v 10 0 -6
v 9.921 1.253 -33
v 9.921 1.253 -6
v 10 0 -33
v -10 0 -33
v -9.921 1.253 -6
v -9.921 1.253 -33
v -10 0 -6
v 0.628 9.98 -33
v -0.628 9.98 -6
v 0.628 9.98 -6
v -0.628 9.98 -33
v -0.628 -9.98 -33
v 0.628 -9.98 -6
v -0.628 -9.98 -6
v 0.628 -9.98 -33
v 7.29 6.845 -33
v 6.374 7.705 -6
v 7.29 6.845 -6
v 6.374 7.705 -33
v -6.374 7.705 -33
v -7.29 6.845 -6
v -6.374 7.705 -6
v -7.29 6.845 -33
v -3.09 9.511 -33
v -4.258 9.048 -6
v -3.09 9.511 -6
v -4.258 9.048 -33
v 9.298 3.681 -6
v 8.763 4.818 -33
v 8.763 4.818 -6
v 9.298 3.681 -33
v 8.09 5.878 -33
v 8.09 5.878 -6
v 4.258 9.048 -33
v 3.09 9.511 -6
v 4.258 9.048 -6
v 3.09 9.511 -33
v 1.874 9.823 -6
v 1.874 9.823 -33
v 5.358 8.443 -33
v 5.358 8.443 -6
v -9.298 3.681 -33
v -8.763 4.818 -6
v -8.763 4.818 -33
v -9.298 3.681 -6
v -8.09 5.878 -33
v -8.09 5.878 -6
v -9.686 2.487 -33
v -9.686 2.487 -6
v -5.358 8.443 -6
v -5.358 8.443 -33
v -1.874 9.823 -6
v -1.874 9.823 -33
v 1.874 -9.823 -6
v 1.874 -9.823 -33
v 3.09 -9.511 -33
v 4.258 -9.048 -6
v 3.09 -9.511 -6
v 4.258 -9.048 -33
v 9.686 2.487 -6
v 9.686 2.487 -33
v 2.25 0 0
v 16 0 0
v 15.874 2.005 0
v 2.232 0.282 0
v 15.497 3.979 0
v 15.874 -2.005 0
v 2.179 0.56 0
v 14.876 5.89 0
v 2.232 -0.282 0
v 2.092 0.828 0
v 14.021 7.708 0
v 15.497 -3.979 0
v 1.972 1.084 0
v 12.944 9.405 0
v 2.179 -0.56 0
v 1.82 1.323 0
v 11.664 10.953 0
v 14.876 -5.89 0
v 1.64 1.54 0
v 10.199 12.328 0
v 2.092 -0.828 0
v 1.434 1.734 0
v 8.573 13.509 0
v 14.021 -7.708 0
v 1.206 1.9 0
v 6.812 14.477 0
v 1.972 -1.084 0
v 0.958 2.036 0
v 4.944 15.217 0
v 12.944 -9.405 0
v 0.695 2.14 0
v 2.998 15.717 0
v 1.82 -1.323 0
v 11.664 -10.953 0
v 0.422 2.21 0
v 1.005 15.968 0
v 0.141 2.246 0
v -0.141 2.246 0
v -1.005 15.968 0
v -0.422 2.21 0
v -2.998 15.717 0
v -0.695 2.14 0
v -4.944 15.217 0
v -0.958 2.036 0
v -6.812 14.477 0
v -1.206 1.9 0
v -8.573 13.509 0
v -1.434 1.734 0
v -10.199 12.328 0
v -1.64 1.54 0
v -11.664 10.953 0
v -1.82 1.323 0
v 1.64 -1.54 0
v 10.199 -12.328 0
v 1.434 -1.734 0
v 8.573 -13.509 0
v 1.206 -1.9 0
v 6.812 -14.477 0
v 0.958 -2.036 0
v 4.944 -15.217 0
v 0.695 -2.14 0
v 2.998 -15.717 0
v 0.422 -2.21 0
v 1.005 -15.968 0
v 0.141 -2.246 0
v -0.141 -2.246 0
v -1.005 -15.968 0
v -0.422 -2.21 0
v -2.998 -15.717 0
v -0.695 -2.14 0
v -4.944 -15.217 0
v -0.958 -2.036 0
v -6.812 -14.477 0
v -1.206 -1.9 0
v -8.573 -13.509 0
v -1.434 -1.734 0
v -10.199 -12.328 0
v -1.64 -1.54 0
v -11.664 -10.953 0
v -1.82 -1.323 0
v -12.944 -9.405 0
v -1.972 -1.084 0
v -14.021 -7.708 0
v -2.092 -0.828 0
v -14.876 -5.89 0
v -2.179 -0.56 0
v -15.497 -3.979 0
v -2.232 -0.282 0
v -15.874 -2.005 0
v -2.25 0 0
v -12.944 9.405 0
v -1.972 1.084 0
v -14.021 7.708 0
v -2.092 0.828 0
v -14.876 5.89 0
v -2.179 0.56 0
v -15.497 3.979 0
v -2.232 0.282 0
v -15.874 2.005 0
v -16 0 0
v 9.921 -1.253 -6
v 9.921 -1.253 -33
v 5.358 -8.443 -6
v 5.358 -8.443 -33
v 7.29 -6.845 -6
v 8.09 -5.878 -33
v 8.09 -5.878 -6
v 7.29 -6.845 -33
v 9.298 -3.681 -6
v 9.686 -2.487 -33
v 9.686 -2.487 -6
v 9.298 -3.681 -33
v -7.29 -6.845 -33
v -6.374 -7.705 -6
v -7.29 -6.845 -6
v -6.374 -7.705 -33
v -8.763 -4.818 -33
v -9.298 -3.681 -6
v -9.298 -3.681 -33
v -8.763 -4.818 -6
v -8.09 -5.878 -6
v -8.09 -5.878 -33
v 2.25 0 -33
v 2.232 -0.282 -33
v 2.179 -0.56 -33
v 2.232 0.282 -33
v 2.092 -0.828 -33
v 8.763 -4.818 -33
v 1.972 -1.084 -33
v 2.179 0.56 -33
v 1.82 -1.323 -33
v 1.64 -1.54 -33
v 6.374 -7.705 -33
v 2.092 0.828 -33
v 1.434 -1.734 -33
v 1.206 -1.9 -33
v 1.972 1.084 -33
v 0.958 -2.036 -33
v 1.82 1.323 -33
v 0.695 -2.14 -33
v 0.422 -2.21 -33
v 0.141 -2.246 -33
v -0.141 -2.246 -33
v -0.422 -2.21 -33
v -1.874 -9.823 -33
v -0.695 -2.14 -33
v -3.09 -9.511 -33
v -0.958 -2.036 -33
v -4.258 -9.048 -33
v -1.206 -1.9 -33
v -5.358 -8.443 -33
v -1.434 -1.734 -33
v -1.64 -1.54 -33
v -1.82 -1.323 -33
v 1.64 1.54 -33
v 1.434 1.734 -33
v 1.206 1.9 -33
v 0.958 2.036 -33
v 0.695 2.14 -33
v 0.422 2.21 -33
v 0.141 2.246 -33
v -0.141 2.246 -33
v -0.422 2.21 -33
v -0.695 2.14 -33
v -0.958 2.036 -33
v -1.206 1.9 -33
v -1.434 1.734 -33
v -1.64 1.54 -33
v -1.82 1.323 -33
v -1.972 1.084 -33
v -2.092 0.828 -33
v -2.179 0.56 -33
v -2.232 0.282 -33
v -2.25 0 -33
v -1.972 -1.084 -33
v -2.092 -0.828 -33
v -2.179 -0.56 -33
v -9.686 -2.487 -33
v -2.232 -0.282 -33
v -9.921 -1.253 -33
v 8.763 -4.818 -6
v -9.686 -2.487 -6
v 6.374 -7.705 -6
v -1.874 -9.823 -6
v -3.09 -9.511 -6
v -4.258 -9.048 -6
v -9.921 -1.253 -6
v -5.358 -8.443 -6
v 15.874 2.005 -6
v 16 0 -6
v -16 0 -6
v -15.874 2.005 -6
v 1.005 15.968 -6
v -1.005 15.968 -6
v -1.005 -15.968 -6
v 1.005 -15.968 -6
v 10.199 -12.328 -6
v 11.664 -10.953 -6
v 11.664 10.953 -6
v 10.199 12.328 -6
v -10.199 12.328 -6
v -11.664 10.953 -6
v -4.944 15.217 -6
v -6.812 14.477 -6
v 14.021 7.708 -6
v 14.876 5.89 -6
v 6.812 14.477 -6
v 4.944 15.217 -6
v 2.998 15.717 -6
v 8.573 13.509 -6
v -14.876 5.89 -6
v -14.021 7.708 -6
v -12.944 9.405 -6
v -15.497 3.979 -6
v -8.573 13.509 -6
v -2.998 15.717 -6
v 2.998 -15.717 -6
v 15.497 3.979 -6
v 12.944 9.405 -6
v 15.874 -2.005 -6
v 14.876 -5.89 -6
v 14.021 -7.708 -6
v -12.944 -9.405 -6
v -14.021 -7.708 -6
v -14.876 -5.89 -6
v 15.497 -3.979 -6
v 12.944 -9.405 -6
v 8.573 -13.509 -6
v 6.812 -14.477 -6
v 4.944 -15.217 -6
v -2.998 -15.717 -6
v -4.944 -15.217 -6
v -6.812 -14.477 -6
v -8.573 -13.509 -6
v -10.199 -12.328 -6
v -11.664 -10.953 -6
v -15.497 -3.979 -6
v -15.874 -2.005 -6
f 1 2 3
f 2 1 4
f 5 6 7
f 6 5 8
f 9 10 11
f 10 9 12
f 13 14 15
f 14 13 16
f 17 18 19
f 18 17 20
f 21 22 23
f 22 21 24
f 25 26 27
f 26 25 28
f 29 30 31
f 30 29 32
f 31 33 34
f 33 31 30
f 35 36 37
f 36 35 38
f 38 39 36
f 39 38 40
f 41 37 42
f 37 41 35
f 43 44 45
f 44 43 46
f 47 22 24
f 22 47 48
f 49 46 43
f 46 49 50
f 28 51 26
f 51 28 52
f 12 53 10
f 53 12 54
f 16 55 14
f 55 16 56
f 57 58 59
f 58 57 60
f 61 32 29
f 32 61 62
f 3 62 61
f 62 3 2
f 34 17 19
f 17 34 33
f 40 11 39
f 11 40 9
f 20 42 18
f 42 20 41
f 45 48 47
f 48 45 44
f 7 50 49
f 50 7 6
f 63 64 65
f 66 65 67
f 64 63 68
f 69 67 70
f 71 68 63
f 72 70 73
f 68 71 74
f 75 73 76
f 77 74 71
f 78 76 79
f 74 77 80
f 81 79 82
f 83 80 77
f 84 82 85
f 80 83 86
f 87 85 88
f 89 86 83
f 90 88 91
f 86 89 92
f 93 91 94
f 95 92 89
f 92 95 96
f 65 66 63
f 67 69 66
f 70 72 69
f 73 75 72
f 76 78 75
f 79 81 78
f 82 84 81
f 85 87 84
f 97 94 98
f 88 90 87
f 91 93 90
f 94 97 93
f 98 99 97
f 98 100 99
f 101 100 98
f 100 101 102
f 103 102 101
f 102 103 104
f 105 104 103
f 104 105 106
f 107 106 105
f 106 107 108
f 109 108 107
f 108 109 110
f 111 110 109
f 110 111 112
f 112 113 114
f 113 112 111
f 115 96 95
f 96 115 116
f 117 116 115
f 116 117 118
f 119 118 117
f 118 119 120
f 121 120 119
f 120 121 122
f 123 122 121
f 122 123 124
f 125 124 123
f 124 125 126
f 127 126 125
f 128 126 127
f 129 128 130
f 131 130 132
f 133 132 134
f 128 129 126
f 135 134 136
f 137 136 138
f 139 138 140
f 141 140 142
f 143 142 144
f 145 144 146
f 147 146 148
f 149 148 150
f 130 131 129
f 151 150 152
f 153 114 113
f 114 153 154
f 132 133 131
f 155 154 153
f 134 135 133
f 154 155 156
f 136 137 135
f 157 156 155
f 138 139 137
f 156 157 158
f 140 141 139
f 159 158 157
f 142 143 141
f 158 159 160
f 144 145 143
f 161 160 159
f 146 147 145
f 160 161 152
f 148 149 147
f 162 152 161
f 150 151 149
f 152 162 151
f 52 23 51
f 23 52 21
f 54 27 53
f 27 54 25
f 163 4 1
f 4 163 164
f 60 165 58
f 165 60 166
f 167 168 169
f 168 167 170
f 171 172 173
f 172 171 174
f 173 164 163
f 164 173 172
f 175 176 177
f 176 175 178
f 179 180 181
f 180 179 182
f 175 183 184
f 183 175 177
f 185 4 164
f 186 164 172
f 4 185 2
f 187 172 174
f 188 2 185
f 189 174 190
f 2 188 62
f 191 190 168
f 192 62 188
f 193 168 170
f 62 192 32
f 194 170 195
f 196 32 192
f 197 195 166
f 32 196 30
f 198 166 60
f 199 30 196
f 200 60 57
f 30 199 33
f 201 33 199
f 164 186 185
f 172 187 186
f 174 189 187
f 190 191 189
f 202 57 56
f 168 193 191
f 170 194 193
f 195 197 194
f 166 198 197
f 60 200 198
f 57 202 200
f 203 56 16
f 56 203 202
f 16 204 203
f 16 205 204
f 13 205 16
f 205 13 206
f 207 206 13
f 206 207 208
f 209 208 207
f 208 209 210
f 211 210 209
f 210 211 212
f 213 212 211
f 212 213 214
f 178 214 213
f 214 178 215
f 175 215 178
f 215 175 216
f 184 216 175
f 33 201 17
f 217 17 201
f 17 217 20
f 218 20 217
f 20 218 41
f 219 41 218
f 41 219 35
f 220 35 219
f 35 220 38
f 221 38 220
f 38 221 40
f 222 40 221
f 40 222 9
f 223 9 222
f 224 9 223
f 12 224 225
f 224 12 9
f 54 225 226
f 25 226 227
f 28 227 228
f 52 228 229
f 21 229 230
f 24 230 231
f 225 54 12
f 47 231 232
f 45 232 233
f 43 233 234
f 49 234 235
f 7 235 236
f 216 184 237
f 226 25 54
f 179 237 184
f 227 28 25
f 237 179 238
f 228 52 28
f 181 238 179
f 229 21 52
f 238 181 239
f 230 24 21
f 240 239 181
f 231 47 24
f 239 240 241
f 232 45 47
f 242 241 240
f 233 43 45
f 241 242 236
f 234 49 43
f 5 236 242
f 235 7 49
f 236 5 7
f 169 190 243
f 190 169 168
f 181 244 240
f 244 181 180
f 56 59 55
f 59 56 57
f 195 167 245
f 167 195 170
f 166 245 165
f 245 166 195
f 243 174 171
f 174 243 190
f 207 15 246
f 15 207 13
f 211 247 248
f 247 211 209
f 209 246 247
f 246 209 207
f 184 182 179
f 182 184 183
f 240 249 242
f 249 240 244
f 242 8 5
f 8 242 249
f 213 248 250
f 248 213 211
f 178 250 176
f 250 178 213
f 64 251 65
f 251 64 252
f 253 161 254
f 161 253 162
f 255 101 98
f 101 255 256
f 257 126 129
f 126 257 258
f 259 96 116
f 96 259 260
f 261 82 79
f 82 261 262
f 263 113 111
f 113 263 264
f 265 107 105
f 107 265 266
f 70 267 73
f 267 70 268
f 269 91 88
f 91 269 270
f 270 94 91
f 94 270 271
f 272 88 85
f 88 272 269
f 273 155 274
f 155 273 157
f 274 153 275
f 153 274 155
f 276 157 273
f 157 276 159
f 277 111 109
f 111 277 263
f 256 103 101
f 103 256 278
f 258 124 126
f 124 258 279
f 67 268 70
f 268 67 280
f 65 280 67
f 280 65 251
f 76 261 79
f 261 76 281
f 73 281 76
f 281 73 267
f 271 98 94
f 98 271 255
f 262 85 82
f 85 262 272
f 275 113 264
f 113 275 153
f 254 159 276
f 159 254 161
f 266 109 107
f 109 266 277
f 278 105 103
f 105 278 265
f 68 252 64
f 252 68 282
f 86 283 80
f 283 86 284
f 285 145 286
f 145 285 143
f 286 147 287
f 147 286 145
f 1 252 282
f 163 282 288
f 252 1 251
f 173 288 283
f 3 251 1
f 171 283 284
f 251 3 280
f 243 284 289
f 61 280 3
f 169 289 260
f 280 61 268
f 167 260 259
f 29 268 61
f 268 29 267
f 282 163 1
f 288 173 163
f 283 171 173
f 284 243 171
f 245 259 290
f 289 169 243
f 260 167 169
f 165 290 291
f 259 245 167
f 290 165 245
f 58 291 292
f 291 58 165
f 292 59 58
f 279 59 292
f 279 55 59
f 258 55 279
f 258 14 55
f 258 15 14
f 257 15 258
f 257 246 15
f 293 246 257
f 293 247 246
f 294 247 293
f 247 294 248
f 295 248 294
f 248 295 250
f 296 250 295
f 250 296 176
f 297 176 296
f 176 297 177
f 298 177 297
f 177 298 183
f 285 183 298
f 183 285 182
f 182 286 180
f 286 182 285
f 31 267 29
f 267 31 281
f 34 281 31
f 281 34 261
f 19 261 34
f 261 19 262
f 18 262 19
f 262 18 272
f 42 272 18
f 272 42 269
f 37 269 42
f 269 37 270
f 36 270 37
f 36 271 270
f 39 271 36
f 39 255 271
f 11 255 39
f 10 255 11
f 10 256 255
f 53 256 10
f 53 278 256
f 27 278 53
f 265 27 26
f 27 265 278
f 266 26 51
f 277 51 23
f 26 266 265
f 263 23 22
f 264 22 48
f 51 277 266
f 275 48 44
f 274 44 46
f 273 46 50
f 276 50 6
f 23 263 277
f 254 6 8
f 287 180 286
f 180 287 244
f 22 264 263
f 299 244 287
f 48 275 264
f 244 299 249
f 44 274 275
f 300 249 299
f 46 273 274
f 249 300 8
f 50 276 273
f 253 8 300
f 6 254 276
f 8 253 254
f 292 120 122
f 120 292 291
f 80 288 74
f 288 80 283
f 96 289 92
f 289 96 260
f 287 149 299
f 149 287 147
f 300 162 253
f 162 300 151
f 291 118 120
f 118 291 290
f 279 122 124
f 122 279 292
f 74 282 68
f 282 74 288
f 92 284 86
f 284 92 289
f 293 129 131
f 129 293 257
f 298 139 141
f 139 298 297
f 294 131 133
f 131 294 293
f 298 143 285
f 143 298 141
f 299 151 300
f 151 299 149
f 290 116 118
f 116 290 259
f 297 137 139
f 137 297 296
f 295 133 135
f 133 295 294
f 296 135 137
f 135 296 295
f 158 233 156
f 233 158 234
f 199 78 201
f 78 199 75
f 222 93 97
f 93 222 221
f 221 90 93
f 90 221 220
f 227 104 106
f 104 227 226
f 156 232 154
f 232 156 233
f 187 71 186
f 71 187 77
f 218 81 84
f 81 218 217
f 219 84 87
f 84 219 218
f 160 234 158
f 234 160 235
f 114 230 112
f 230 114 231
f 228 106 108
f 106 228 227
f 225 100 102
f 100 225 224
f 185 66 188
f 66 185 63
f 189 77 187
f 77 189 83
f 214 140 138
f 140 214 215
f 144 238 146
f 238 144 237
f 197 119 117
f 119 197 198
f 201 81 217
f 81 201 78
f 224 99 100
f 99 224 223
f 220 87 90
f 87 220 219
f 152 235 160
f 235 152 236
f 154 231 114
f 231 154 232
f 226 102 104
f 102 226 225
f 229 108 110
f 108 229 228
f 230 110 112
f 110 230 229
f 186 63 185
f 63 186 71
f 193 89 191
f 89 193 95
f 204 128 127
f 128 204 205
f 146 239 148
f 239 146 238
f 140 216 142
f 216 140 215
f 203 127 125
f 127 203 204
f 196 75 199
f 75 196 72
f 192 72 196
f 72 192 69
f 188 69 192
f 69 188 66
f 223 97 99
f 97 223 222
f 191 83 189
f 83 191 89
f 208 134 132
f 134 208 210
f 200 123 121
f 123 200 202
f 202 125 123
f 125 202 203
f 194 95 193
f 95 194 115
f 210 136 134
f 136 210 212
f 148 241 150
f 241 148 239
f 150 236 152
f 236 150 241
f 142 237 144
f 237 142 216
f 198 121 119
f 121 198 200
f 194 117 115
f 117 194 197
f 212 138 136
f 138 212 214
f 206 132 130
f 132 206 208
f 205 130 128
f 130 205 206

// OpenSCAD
$fn = 50;


difference() {
	union() {
		translate(v = [0, 0, -33.0000000000]) {
			cylinder(h = 33, r = 10.0000000000);
		}
		translate(v = [0, 0, -6.0000000000]) {
			cylinder(h = 6, r = 16.0000000000);
		}
	}
	union() {
		#translate(v = [0, 0, -33]) {
			cylinder(h = 33, r = 2.2500000000);
		}
	}
}
